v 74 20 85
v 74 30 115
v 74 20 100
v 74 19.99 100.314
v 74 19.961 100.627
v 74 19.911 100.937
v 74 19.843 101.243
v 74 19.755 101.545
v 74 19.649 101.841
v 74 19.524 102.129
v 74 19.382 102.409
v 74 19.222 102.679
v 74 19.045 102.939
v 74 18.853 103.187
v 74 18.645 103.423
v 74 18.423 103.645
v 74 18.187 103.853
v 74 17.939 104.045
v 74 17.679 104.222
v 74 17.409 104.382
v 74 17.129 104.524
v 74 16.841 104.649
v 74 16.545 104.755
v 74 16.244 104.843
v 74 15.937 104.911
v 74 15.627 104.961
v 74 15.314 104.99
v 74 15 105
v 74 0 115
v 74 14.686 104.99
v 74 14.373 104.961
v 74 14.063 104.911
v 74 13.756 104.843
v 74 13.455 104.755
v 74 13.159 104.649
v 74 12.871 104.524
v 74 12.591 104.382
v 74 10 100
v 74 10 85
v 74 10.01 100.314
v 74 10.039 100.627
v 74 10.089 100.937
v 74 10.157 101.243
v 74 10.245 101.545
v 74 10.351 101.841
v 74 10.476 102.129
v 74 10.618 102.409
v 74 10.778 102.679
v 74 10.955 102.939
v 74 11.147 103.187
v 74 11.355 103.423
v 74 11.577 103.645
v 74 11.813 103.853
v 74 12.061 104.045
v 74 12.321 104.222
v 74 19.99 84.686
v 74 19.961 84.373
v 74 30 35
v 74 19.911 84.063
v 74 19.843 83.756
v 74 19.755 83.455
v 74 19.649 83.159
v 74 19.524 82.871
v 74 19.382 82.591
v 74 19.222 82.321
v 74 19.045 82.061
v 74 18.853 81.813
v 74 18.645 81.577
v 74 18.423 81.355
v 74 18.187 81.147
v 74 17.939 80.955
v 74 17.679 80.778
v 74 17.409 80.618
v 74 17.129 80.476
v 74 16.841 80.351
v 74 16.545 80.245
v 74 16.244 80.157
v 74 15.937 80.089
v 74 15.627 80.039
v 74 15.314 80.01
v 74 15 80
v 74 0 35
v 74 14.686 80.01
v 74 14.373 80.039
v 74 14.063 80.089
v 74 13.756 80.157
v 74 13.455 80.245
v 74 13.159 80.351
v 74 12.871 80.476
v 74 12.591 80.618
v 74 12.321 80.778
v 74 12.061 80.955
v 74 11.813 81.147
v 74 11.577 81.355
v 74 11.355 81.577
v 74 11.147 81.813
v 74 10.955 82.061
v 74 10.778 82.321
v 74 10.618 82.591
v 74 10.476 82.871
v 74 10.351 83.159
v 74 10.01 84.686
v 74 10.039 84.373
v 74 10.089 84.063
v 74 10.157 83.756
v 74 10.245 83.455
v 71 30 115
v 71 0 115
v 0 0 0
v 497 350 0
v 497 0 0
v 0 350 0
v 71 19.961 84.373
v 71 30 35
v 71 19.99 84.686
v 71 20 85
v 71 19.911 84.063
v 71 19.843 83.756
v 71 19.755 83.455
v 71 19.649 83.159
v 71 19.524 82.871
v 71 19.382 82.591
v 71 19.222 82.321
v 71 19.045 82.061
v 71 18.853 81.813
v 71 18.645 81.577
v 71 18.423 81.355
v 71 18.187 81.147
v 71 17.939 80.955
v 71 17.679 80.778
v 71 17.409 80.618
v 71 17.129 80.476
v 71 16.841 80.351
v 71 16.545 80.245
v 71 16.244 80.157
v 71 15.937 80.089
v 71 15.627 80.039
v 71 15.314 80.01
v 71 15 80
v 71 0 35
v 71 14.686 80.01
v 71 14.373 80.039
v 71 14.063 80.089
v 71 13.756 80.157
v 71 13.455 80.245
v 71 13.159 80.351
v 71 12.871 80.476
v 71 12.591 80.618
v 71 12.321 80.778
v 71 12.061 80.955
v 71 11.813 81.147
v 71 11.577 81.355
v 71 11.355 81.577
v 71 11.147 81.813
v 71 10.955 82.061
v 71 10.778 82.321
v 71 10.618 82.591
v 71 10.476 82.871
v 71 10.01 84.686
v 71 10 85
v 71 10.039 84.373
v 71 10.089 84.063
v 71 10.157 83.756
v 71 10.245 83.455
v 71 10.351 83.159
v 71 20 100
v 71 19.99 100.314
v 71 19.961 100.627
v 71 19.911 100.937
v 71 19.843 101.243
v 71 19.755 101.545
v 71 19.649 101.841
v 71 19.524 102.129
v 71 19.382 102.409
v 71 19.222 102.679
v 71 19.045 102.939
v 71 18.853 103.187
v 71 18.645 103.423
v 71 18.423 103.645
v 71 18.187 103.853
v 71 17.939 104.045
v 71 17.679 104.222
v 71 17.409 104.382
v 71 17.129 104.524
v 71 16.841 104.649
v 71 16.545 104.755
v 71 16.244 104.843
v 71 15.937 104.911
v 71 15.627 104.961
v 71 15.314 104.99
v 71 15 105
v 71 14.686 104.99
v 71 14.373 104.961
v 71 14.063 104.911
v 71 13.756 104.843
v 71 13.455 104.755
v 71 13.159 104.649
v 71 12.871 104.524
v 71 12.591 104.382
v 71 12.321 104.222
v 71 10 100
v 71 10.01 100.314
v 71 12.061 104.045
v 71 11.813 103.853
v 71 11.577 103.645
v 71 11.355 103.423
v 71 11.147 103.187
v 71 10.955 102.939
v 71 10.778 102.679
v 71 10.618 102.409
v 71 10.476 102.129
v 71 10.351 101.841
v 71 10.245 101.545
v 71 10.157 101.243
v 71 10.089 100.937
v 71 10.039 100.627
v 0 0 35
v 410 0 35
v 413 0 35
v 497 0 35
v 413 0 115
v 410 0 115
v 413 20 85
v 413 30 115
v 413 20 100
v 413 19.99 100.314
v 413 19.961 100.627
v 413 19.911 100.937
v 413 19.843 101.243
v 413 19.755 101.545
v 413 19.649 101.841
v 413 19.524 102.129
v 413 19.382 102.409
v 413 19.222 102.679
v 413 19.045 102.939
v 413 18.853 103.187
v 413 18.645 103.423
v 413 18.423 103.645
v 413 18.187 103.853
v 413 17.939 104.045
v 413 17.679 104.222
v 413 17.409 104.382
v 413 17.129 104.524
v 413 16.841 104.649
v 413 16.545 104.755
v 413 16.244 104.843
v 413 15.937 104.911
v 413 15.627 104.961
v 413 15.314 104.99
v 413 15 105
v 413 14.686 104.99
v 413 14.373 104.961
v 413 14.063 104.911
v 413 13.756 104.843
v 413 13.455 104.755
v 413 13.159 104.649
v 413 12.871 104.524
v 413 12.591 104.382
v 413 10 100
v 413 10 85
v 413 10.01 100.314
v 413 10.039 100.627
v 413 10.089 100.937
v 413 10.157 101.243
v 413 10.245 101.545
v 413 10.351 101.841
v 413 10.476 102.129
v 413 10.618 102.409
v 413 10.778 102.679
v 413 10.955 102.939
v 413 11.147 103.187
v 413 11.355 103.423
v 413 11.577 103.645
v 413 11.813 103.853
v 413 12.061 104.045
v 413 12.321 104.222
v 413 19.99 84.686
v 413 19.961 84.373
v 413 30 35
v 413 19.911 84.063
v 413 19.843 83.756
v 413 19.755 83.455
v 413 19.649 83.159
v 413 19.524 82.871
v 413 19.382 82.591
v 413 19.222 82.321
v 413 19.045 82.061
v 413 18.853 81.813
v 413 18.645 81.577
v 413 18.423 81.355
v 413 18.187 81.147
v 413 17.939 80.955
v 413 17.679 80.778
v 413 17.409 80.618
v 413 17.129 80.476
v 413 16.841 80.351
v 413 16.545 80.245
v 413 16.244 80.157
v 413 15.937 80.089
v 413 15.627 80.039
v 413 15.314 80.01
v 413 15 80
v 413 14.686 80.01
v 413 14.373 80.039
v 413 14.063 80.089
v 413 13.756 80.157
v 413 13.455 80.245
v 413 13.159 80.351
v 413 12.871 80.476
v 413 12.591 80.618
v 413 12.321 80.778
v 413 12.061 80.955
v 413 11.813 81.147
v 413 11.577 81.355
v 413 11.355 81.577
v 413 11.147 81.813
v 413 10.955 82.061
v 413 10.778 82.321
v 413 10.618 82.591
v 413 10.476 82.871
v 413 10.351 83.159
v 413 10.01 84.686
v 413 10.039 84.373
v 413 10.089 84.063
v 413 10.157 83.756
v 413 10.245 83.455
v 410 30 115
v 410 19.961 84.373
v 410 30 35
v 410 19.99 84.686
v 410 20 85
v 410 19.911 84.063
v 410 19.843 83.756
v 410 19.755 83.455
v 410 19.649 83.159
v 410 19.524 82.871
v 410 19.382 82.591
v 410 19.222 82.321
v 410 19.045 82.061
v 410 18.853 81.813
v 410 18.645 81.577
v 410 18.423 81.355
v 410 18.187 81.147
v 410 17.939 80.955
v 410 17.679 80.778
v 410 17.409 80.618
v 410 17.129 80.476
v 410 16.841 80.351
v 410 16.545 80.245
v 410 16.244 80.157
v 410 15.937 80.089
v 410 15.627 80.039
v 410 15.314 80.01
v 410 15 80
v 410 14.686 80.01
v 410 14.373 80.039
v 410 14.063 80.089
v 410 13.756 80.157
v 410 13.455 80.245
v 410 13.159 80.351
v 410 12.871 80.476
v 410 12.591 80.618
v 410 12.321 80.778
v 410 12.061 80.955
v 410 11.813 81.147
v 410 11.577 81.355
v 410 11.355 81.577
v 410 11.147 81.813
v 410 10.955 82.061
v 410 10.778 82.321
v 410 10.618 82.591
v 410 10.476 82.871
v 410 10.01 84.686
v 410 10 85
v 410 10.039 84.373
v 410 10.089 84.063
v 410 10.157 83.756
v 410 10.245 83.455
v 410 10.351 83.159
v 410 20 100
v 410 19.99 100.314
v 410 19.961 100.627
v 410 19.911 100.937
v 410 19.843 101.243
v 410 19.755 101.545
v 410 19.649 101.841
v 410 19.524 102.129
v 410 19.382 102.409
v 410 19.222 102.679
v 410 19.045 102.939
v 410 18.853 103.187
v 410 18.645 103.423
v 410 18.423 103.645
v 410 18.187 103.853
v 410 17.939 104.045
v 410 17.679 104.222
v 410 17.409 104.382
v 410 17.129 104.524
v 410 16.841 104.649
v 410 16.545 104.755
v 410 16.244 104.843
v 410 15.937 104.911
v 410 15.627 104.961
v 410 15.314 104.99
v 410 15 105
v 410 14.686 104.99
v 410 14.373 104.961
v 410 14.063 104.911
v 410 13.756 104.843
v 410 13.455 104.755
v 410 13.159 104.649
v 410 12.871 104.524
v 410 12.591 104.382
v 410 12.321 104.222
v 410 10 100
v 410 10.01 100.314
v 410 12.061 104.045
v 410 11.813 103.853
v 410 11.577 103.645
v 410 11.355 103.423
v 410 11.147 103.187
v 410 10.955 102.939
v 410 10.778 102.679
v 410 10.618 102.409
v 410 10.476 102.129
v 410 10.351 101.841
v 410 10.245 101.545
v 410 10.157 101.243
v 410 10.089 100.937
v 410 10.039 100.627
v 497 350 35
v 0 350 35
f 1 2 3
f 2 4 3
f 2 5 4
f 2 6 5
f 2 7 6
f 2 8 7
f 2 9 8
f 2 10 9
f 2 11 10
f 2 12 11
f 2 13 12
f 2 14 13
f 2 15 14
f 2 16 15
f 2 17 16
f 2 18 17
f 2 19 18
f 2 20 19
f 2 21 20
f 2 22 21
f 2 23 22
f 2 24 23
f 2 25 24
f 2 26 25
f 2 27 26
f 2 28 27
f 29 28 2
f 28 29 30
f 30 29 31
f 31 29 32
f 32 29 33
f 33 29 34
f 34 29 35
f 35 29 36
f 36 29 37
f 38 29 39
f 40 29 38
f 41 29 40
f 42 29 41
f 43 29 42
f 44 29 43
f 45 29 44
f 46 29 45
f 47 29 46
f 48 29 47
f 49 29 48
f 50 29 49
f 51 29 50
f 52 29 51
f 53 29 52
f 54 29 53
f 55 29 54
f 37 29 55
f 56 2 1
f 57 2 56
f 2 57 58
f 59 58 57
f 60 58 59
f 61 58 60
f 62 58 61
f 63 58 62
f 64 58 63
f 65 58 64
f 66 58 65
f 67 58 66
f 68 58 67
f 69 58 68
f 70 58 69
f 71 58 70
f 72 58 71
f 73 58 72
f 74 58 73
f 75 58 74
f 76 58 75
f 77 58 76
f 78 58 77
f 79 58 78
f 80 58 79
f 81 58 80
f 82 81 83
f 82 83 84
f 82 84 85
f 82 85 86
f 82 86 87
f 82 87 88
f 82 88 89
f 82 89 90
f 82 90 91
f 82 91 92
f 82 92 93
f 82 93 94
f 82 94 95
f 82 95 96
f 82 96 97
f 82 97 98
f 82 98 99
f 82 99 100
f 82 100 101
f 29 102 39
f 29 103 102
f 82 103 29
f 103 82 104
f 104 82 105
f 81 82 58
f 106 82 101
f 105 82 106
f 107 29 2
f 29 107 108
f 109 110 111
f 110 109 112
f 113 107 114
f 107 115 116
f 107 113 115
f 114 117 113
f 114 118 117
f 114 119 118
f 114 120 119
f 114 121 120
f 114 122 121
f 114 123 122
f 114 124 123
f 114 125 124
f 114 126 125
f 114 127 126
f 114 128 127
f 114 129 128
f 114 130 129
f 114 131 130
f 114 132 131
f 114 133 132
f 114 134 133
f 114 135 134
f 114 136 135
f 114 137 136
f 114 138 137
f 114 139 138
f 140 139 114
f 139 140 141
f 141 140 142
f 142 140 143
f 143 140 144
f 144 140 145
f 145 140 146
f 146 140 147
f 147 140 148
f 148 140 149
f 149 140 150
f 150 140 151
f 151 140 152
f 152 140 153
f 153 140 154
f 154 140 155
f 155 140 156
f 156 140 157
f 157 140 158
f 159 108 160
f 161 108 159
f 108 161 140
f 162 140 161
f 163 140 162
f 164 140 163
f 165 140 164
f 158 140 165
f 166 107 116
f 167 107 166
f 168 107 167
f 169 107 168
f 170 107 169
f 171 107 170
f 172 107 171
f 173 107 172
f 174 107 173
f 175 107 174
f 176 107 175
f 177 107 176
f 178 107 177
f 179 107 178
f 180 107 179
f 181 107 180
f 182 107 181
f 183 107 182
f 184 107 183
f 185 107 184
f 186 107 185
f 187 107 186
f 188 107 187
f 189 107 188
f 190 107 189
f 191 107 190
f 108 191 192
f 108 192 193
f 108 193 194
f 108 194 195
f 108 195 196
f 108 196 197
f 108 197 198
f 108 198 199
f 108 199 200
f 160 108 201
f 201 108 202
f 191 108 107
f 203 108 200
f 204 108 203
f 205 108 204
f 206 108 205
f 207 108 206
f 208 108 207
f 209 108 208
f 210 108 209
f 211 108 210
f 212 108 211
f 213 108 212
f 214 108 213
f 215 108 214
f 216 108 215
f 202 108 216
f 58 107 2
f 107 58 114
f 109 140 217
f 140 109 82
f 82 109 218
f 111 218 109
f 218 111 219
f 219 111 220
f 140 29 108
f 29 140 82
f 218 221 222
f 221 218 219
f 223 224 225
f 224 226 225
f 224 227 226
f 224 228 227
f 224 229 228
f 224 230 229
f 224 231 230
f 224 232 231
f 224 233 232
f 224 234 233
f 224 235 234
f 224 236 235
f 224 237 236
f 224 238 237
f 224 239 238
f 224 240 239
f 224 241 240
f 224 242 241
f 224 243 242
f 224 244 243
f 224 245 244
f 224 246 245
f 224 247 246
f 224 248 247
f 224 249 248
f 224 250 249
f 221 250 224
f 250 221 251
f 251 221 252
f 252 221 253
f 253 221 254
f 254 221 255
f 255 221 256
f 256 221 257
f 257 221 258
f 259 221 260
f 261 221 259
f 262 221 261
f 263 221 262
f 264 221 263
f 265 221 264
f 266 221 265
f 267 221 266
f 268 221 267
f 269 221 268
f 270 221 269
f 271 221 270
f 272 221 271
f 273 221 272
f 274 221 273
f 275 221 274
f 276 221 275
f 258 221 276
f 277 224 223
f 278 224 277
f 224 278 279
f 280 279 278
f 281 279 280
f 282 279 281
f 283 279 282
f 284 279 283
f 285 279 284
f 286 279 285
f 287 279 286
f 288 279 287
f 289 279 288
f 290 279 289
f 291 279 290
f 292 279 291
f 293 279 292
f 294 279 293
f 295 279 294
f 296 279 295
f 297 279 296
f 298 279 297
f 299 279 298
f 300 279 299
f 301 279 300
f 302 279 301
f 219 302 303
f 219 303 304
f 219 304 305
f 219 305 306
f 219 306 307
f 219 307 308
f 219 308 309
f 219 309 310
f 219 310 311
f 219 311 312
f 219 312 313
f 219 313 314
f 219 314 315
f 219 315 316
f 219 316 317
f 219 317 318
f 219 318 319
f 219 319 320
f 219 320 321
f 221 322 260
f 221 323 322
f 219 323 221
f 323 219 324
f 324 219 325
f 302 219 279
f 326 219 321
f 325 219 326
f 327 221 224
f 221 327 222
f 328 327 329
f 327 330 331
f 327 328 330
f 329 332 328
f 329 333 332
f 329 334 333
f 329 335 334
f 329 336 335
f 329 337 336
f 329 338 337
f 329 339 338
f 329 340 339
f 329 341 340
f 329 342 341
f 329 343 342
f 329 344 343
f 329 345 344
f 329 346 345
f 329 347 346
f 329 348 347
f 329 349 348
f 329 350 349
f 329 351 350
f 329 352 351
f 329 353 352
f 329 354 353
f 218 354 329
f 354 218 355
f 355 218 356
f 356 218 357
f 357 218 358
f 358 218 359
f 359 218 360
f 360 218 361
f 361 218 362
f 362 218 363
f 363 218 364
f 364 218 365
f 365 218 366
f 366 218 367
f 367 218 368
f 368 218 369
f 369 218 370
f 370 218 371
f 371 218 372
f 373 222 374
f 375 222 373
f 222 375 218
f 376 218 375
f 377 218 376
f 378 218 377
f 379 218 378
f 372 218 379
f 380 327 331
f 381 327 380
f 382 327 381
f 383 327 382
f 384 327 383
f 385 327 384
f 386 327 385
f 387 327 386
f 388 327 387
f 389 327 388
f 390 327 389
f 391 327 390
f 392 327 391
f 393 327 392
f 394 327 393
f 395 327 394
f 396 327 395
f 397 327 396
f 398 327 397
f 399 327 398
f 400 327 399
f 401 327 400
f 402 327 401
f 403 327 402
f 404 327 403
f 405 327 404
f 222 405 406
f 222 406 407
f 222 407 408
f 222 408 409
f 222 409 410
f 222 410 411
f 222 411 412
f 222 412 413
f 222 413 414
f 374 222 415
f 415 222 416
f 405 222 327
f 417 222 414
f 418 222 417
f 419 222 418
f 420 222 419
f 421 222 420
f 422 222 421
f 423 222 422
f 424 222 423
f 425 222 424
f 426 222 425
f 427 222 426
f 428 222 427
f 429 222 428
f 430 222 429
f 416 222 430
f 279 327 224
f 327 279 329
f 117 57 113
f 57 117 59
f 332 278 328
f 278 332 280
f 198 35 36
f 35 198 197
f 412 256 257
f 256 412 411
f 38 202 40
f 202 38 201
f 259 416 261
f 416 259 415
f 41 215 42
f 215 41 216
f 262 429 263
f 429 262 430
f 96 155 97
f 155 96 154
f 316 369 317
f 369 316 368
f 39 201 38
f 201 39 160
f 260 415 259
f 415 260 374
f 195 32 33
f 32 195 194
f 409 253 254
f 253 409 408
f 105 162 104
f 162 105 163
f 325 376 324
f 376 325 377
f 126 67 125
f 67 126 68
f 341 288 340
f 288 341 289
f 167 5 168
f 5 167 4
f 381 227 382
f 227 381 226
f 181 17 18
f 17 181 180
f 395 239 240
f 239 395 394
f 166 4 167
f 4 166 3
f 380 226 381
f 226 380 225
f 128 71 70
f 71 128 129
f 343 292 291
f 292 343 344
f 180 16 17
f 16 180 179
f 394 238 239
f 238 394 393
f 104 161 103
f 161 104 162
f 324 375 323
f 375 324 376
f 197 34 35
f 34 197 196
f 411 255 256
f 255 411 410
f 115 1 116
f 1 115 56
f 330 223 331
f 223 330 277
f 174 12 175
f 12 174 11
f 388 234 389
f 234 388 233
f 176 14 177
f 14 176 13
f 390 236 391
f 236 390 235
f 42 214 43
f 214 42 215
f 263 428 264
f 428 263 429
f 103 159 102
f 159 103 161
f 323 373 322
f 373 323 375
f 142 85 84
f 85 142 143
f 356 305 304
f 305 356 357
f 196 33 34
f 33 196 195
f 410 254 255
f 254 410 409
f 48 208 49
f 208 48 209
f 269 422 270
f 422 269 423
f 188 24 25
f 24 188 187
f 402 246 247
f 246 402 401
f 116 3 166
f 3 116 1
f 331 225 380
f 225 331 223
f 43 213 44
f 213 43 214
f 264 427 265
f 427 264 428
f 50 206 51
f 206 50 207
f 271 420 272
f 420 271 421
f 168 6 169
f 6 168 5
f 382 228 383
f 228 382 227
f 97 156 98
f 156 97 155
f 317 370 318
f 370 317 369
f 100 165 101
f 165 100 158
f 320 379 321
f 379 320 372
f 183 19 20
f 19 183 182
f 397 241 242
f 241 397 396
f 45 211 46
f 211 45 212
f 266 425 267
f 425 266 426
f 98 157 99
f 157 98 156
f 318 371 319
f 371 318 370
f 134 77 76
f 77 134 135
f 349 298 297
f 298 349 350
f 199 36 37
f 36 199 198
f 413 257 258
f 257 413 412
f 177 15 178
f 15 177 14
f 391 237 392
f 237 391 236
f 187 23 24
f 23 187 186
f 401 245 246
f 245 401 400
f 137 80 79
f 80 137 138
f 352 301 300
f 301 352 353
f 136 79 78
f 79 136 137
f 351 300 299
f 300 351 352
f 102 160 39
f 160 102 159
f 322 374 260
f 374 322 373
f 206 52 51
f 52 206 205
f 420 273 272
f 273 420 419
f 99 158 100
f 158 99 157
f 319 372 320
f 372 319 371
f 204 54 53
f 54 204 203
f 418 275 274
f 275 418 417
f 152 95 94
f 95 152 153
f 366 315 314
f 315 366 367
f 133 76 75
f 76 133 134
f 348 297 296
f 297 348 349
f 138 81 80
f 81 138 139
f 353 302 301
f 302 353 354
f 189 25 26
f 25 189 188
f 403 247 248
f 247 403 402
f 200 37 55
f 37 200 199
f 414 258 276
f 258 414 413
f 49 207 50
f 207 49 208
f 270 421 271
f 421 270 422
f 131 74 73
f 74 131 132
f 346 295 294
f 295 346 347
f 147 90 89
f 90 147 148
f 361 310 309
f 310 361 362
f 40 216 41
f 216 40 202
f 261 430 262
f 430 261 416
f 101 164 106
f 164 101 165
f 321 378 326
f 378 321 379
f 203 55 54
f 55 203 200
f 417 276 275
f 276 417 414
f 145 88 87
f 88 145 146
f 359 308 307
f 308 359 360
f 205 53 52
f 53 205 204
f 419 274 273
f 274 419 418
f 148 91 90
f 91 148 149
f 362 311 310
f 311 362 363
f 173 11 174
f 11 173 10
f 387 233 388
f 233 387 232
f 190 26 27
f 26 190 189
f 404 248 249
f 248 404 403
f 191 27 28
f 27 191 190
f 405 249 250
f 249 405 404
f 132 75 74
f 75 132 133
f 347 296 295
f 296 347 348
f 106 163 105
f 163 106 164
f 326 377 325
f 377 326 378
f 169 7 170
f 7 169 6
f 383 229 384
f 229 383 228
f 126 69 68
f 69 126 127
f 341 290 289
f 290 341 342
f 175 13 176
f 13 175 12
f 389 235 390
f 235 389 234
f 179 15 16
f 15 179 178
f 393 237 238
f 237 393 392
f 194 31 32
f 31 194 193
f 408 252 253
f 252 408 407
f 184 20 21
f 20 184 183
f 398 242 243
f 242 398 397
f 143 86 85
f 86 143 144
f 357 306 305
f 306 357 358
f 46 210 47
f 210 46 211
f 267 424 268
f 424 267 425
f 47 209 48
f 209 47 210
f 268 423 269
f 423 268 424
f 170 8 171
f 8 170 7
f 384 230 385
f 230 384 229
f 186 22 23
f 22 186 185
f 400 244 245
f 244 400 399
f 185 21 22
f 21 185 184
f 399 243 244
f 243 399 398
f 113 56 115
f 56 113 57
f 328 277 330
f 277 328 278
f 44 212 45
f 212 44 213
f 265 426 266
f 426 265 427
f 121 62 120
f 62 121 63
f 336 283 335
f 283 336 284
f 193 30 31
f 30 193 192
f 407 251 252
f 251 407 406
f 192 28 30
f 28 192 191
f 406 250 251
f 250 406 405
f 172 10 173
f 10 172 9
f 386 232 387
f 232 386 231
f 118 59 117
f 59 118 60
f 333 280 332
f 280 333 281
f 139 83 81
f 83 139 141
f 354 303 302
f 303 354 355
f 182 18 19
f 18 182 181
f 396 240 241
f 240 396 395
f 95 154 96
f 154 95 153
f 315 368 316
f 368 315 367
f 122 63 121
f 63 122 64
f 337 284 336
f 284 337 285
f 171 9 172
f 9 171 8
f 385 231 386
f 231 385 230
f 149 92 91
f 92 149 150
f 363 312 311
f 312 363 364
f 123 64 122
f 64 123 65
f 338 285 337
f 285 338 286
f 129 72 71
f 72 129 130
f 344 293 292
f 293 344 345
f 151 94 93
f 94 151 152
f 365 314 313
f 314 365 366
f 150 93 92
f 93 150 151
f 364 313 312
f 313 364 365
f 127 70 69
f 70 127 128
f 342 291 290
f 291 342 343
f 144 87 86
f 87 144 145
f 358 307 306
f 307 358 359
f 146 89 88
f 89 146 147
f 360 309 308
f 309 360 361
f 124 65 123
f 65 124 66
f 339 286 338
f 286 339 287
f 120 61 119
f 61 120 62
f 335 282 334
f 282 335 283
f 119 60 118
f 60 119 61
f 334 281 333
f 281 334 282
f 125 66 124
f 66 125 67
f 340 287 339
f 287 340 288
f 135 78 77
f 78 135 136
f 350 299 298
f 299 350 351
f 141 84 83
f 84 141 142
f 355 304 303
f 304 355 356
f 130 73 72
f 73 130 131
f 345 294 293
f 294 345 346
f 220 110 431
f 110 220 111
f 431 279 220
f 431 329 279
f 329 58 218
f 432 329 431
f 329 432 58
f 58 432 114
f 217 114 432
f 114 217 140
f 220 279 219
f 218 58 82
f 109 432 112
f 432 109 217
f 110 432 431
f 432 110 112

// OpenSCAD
$fn=100;
doorX = 550 ; doorY = 290 ; doorZ = 21 ;
coverX = 497 ; coverY = 350 ; coverZ = 35 ;

module door (x,y,z) {
    Xwiggle = [.1,0,0] ;
    holeH = 15 ; holeD = 7 ;
    holeOff = [0,19,13] ;
    difference(){
        cube ([x,y,z]);
        translate([0,y,0] - [0,holeOff.y,-holeOff.z] - Xwiggle) rotate([0,90,0]) cylinder(h=holeH + 2*Xwiggle.x ,d=holeD);
    }
    translate([x,y,0] - [0,holeOff.y,-holeOff.z] - Xwiggle) rotate([0,90,0]) cylinder(h=holeH + 2*Xwiggle.x ,d=holeD);
}

module cover () {
    x = coverX ;
    y = coverY ;
    z = coverZ ;
    mount = [3,30,115] ;
    cube([x,y,z]);
    difference(){
        union() {
            translate([71,0,0]) cube(mount);
            translate([410,0,0]) cube(mount);
        }
        hull(){
            translate ([0,mount.y/2,100]) rotate([0,90,0]) cylinder(h=coverX,d=10);
            translate ([0,mount.y/2,85]) rotate([0,90,0]) cylinder(h=coverX,d=10);
        }
    }
}

//shelf
module shelf() {
    //bottom of shelf
    translate([0,0,-20]) cube([1100,530,20]);
    //top of shelf
    translate([0,0,370]) cube([1100,530,20]);
}
module components(){
        union(){
        //zendure
        translate([70,100,0]) cube([350,250,70]);
        //deye
        translate([70,120,75]) cube([350,185,40]);
        //battery
        battOffZ = [0,0,100] ;
        translate([630,110,0]+battOffZ) union(){
            batt = [360,200,290] ;
            translate([0,0,-batt.z]) cube(batt);
            translate([30,batt.y/2,0]) cylinder(h=110,d=30);
        }
    }
    //left side
    translate([0,0,0]){
        translate([0,0,0]) rotate([45,0,0]) door(doorX, doorY, doorZ);
        translate([(doorX-coverX)/2,doorY-100,240]) rotate([-45,0,0]) cover();
    }
    //right side
    *translate([555,0,0]){
        translate([(doorX-coverX)/2,doorY-100,240]) rotate([-45,0,0]) cover();
        translate([0,0,0]) rotate([45,0,0]) door(doorX, doorY, doorZ);
    }
}


//holder draft
module armL() {
    H = 200 ;
    holeD = 6 ;
    armD = 40 ;
    baseX = 80;
    difference () {
        hull(){
            translate([0,20,H]) rotate([0,90,0]) cylinder(h=10,d=armD);
            cube ([10,baseX,10]);
            translate ([-30,10,0]) cube ([30,60,10]);
        }
        translate([0, armD/2, H]) translate([-10,0,0]) rotate([0,90,0]) cylinder(h=50, d=6);
    }
    cube([70,baseX,5]);
}

*shelf();
*translate([11,50,0]) components();

*translate([0,212,0]) armL();

cover();
